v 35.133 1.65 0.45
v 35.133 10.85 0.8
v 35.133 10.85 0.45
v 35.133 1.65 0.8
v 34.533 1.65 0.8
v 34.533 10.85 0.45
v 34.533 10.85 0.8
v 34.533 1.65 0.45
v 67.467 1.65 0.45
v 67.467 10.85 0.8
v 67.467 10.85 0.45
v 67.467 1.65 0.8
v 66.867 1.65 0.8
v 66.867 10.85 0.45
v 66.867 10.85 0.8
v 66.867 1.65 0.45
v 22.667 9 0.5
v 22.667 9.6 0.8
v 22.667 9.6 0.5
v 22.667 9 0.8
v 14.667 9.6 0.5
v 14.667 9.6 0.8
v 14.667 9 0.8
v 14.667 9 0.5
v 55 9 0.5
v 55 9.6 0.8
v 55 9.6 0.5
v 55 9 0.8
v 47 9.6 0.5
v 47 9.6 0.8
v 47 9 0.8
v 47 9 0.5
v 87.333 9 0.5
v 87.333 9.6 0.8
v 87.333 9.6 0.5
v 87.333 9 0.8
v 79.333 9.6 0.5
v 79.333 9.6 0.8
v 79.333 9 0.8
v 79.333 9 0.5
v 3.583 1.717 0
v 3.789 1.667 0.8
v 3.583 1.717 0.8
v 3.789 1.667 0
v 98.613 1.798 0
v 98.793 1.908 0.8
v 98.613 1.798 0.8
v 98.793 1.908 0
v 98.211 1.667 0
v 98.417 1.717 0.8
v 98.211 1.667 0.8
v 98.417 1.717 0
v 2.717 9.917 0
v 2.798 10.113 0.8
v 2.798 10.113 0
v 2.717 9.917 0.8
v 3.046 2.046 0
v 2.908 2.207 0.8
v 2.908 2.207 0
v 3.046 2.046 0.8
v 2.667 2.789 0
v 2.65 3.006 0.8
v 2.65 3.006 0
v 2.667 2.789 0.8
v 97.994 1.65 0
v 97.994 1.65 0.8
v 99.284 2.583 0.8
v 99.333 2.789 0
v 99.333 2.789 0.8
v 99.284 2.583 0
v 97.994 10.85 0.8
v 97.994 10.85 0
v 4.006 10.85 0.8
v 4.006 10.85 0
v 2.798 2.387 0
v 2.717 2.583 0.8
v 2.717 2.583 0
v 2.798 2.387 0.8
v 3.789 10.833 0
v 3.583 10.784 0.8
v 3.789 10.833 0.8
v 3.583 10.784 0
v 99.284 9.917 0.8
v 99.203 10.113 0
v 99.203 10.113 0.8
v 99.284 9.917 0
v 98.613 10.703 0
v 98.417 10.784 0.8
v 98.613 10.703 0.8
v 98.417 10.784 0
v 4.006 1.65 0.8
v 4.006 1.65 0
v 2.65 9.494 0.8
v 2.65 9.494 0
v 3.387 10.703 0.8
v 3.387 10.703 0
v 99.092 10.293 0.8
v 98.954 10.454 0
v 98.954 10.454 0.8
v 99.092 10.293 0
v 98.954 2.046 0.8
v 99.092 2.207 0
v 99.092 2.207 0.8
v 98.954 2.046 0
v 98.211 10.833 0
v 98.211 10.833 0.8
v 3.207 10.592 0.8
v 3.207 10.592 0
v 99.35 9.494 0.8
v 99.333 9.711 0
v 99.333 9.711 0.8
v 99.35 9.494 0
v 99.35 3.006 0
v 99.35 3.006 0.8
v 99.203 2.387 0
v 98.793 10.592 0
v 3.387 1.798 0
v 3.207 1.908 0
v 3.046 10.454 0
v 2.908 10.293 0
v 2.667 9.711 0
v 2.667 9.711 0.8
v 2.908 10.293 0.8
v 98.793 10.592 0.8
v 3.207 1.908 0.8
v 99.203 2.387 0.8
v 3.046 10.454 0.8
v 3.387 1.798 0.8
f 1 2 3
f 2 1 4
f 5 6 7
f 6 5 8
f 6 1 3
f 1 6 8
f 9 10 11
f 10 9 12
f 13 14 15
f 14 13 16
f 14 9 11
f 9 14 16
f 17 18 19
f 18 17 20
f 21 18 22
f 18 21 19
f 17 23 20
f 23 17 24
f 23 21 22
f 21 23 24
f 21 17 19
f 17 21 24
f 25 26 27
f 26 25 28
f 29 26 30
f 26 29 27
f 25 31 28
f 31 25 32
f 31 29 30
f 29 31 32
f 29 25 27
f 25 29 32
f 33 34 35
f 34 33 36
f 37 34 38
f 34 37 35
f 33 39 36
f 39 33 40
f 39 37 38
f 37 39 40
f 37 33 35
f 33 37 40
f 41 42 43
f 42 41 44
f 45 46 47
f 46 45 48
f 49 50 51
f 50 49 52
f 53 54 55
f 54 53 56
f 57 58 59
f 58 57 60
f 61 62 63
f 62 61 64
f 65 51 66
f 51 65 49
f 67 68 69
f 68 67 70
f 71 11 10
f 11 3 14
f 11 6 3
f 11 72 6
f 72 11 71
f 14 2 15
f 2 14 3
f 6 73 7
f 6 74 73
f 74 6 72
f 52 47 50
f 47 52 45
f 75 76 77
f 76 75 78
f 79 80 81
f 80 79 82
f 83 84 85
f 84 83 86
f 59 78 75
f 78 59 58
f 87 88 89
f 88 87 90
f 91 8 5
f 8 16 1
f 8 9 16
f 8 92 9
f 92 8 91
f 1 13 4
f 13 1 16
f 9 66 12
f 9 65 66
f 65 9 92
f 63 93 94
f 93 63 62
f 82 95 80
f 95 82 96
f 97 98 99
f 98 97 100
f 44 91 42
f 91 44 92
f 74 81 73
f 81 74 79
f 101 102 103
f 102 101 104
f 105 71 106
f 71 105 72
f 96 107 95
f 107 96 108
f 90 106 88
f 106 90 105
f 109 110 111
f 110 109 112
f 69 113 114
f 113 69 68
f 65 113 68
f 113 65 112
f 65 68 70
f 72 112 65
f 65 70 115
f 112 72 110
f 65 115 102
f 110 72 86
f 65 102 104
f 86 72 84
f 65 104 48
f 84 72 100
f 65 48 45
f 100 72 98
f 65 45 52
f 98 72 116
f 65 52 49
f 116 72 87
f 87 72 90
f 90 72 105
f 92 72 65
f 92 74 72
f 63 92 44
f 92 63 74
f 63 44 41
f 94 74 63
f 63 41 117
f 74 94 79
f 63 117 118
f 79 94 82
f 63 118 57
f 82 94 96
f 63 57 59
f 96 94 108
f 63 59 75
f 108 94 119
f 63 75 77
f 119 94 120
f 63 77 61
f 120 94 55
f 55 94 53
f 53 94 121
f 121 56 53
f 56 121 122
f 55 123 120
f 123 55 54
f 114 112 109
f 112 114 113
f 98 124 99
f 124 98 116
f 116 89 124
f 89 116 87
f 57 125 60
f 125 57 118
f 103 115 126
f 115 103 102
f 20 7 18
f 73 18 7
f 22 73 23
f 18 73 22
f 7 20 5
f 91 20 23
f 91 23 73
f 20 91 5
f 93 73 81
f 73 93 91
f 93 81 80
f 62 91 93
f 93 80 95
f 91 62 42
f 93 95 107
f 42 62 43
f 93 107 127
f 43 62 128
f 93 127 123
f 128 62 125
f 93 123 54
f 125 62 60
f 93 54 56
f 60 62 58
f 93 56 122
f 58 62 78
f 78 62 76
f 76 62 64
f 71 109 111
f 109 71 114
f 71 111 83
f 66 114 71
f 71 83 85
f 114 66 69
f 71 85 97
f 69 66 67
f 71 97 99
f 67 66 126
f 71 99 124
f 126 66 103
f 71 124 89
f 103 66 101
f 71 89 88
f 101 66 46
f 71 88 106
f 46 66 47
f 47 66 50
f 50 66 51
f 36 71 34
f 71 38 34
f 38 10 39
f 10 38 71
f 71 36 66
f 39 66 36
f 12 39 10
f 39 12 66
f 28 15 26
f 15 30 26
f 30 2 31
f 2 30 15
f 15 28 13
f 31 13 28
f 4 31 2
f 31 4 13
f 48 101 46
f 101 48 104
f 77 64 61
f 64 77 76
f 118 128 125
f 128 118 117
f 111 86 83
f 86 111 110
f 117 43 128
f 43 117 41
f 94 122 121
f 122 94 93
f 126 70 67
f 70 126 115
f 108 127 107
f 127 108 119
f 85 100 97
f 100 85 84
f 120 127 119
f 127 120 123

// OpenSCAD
// TV_Console_Drawer_Fronts.stl  -  Store Versile room frame (Rev C)
// Quantity: 1   Filament: White (e.g. PLA Basic Jade White / Matte Ivory White)
// Print: layer 0.12 mm, infill 100%, 2 walls, brim 0 mm, NO supports
// Orientation: back  (lying on its back, front face up)
// Notes: 0.8 mm plate, grooves up. Glue into the body recess.
// The library draws parts with their front toward +Y; mirror([0,1,0]) makes the real
// part face the viewer correctly (see build.py). Edit dimensions in versile_parts.scad.
use <../versile_parts.scad>

rotate([-90, 0, 0]) mirror([0, 1, 0]) tv_console_drawers();
